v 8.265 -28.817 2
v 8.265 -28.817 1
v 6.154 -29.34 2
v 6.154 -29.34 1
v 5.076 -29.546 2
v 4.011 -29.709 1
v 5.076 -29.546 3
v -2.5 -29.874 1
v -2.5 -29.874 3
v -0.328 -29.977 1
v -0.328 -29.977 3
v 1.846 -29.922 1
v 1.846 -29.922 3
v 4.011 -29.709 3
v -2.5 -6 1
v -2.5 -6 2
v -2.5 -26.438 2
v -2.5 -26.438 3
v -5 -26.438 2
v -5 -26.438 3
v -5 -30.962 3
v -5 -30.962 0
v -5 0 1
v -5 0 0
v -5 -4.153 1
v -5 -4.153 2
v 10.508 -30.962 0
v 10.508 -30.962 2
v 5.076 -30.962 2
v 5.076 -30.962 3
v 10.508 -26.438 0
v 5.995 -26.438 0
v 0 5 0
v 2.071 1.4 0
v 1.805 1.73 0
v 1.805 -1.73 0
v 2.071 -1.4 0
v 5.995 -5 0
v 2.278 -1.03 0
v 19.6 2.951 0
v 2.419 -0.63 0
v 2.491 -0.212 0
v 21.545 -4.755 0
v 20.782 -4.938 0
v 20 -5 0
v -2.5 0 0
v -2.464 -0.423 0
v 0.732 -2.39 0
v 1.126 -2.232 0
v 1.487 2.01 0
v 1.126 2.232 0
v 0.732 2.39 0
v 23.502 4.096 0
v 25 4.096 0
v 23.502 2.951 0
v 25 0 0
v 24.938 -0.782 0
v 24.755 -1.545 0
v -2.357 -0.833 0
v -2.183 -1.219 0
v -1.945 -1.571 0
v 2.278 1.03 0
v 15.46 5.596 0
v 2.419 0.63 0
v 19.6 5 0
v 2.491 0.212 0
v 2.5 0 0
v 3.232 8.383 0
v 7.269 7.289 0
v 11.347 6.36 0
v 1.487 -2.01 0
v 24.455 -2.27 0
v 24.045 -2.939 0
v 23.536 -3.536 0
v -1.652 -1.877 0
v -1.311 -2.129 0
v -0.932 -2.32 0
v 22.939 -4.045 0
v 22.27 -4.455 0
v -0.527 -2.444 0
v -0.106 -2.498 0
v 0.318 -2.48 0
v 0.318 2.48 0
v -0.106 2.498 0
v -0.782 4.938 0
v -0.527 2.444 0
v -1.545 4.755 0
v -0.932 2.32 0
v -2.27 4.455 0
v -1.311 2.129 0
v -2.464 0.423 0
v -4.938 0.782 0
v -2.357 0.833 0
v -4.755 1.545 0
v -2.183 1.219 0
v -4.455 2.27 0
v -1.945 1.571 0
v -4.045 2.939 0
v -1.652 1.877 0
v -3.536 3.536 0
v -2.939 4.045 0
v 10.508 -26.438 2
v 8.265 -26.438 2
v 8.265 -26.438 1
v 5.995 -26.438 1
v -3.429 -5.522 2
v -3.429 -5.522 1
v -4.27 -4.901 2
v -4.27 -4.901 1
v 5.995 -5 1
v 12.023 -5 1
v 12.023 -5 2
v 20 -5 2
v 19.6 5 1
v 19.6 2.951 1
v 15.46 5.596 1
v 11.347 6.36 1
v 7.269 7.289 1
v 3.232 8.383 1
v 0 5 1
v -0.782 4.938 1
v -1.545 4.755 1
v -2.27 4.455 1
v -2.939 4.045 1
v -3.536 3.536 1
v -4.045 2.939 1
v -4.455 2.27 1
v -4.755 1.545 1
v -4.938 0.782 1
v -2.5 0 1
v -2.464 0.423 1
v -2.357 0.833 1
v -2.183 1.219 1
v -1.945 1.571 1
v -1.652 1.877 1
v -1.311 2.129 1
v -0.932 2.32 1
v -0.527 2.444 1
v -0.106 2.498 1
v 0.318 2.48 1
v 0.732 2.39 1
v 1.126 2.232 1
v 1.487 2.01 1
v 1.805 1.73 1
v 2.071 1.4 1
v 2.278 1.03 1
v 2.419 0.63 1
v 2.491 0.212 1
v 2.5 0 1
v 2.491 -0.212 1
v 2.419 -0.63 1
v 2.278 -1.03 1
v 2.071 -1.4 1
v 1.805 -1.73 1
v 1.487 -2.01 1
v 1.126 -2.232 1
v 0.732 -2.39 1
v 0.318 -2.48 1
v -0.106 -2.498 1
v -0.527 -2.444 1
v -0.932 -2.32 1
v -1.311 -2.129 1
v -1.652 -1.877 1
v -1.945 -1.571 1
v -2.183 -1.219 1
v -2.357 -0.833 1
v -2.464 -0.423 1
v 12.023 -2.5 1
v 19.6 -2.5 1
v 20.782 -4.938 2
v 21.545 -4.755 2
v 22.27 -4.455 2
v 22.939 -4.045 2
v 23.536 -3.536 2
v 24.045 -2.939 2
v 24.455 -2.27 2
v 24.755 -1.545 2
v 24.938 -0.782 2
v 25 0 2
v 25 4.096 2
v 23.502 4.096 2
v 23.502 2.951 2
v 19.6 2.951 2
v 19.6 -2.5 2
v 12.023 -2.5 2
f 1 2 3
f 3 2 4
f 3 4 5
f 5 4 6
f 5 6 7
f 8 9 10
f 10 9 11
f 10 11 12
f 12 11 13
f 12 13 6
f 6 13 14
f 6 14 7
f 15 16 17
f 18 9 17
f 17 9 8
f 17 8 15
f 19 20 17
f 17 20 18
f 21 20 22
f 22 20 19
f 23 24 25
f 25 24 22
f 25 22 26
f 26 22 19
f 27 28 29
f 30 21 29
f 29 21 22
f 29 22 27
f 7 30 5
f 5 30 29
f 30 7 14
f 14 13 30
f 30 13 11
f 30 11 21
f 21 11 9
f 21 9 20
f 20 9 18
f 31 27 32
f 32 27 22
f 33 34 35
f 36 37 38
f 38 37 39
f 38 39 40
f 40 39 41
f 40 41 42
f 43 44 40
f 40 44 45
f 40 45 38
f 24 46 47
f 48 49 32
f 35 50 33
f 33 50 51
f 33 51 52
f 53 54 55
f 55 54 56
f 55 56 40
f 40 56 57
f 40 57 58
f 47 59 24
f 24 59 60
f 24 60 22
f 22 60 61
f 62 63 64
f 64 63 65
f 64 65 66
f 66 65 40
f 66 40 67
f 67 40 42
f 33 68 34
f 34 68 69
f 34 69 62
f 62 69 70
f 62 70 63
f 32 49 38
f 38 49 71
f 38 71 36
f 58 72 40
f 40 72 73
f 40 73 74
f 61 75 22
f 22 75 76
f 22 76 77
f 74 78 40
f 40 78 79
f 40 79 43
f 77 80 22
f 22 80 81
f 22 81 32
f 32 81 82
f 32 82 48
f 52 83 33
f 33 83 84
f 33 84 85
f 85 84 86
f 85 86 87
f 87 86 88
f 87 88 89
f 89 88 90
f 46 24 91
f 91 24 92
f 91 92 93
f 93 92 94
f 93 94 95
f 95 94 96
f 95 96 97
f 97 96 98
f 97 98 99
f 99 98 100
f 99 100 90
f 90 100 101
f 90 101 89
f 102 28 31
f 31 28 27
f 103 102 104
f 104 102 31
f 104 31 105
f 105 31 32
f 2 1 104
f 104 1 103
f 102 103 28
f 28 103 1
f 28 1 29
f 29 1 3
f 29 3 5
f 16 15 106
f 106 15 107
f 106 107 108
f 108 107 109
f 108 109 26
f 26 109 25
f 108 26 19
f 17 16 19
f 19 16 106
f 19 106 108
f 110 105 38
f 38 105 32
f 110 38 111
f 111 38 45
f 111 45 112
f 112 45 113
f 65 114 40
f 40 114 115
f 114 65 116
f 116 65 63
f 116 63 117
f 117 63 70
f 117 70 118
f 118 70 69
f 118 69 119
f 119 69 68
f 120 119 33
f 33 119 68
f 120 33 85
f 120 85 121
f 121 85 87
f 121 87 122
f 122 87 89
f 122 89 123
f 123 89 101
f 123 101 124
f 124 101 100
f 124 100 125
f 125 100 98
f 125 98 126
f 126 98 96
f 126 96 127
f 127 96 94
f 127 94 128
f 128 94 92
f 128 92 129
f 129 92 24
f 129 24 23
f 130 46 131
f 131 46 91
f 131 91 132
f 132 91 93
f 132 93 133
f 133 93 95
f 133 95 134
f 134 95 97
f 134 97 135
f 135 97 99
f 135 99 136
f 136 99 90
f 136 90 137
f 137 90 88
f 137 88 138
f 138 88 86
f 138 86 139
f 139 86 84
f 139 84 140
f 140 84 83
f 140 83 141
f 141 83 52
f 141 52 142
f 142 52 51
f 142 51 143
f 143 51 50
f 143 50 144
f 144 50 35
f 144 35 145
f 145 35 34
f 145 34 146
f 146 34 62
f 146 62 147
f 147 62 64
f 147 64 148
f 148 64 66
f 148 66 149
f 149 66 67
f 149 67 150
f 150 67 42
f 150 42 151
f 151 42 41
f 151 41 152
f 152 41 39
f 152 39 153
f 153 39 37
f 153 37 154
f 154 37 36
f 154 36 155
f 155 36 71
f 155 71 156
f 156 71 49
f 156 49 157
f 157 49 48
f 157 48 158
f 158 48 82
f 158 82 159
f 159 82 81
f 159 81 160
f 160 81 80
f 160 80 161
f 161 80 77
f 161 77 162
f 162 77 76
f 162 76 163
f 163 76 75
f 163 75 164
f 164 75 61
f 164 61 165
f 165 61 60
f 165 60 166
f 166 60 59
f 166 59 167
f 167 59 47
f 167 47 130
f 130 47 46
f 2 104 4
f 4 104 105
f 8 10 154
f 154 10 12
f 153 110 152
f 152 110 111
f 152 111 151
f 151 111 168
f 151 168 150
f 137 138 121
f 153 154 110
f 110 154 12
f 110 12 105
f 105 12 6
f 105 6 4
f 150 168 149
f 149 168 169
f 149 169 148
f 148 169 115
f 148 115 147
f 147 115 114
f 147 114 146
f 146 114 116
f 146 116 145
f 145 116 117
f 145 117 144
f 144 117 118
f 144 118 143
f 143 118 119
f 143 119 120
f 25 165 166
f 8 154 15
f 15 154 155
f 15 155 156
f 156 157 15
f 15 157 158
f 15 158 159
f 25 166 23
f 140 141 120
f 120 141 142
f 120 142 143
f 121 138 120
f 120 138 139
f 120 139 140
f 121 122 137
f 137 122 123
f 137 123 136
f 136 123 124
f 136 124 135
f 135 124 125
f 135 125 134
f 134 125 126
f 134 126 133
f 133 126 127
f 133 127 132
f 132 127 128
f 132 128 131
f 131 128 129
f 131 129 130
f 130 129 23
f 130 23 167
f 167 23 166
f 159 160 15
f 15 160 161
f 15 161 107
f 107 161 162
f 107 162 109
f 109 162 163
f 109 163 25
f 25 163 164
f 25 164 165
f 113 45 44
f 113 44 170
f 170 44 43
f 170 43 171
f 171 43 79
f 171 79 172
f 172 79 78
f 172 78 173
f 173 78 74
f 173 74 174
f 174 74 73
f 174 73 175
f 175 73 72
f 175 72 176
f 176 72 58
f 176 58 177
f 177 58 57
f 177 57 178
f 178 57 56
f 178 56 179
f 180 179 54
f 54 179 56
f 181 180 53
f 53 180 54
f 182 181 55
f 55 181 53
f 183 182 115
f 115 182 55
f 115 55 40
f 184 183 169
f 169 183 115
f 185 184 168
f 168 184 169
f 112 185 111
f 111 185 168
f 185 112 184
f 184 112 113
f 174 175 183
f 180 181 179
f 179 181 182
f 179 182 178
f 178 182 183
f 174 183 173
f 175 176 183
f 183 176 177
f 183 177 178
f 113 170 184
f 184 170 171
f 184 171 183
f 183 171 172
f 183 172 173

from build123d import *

# Parameters (mm, degrees)
EXTRUDE_3_DEPTH = 3
EXTRUDE_4_DEPTH = 2
SKETCH_1_8_R    = 2.5
EXTRUDE_5_DEPTH = 1


with BuildPart() as part:
    # 스케치1 → 보스-돌출3 (new body)
    with BuildSketch(Plane.XY):
        with BuildLine():
            Line((-2.5, -26.437677825), (-5, -26.437677825))
            Line((-5, -26.437677825), (-5, -30.96175738))
            Line((-5, -30.96175738), (5.076141326, -30.96175738))
            Line((5.076141326, -30.96175738), (5.076141326, -29.54601506))
            ThreePointArc((5.076141326, -29.54601506), (1.298498135, -29.950761581), (-2.5, -29.874474333))
            Line((-2.5, -29.874474333), (-2.5, -26.437677825))
        make_face()
    extrude(amount=EXTRUDE_3_DEPTH)

    # 스케치1<7> → 보스-돌출4 (add)
    with BuildSketch(Plane.XY):
        with BuildLine():
            Line((23.502499093, 2.950728465), (19.6, 2.950728465))
            Line((19.6, 2.950728465), (19.6, -2.5))
            Line((19.6, -2.5), (12.023157318, -2.5))
            Line((12.023157318, -2.5), (12.023157318, -5))
            Line((12.023157318, -5), (20, -5))
            ThreePointArc((20, -5), (23.535533906, -3.535533906), (25, 0))
            Line((25, 0), (25, 4.09591659))
            Line((25, 4.09591659), (23.502499093, 4.09591659))
            Line((23.502499093, 4.09591659), (23.502499093, 2.950728465))
        make_face()
        with BuildLine():
            ThreePointArc((-2.5, -6), (-3.862002616, -5.228282299), (-5, -4.153311931))
            Line((-5, -4.153311931), (-5, -26.437677825))
            Line((-5, -26.437677825), (-2.5, -26.437677825))
            Line((-2.5, -26.437677825), (-2.5, -6))
        make_face()
        with BuildLine():
            Line((5.076141326, -29.54601506), (5.076141326, -30.96175738))
            Line((5.076141326, -30.96175738), (10.508252403, -30.96175738))
            Line((10.508252403, -30.96175738), (10.508252403, -26.437677825))
            Line((10.508252403, -26.437677825), (8.264928228, -26.437677825))
            Line((8.264928228, -26.437677825), (8.264928228, -28.81709871))
            ThreePointArc((8.264928228, -28.81709871), (6.680483813, -29.225080884), (5.076141326, -29.54601506))
        make_face()
    extrude(amount=EXTRUDE_4_DEPTH)


with BuildPart() as extrude_4_piece_1:
    # of the separate pieces the step leaves, piece 1, a body of its own (extrude_4_pieces)
    add(part.part.solids().sort_by_distance((-2.5, -29.874474333, 0))[0])



with BuildPart() as extrude_4_piece_2:
    # of the separate pieces the step leaves, piece 2, a body of its own (extrude_4_pieces)
    add(part.part.solids().sort_by_distance((23.502499093, 2.950728465, 0))[0])


with BuildPart() as extrude_4_piece_1_1:
    add(extrude_4_piece_1.part)

    add(extrude_4_piece_2.part)  # 보스-돌출5 merges 보스-돌출4 piece 2
    # 스케치1<8> → 보스-돌출5 (add)
    with BuildSketch(Plane.XY):
        with BuildLine():
            Line((3.231912185, 8.38327913), (0, 5))
            ThreePointArc((0, 5), (-3.535533906, 3.535533906), (-5, 0))
            Line((-5, 0), (-5, -4.153311931))
            ThreePointArc((-5, -4.153311931), (-3.862002616, -5.228282299), (-2.5, -6))
            Line((-2.5, -6), (-2.5, -29.874474333))
            ThreePointArc((-2.5, -29.874474333), (2.93054776, -29.83531643), (8.264928228, -28.81709871))
            Line((8.264928228, -28.81709871), (8.264928228, -26.437677825))
            Line((8.264928228, -26.437677825), (5.994868924, -26.437677825))
            Line((5.994868924, -26.437677825), (5.994868924, -5))
            Line((5.994868924, -5), (12.023157318, -5))
            Line((12.023157318, -5), (12.023157318, -2.5))
            Line((12.023157318, -2.5), (19.6, -2.5))
            Line((19.6, -2.5), (19.6, 5))
            ThreePointArc((19.6, 5), (11.347380216, 6.359873864), (3.231912185, 8.38327913))
        make_face()
        Circle(SKETCH_1_8_R, mode=Mode.SUBTRACT)
    extrude(amount=EXTRUDE_5_DEPTH)


solid = extrude_4_piece_1_1.part
